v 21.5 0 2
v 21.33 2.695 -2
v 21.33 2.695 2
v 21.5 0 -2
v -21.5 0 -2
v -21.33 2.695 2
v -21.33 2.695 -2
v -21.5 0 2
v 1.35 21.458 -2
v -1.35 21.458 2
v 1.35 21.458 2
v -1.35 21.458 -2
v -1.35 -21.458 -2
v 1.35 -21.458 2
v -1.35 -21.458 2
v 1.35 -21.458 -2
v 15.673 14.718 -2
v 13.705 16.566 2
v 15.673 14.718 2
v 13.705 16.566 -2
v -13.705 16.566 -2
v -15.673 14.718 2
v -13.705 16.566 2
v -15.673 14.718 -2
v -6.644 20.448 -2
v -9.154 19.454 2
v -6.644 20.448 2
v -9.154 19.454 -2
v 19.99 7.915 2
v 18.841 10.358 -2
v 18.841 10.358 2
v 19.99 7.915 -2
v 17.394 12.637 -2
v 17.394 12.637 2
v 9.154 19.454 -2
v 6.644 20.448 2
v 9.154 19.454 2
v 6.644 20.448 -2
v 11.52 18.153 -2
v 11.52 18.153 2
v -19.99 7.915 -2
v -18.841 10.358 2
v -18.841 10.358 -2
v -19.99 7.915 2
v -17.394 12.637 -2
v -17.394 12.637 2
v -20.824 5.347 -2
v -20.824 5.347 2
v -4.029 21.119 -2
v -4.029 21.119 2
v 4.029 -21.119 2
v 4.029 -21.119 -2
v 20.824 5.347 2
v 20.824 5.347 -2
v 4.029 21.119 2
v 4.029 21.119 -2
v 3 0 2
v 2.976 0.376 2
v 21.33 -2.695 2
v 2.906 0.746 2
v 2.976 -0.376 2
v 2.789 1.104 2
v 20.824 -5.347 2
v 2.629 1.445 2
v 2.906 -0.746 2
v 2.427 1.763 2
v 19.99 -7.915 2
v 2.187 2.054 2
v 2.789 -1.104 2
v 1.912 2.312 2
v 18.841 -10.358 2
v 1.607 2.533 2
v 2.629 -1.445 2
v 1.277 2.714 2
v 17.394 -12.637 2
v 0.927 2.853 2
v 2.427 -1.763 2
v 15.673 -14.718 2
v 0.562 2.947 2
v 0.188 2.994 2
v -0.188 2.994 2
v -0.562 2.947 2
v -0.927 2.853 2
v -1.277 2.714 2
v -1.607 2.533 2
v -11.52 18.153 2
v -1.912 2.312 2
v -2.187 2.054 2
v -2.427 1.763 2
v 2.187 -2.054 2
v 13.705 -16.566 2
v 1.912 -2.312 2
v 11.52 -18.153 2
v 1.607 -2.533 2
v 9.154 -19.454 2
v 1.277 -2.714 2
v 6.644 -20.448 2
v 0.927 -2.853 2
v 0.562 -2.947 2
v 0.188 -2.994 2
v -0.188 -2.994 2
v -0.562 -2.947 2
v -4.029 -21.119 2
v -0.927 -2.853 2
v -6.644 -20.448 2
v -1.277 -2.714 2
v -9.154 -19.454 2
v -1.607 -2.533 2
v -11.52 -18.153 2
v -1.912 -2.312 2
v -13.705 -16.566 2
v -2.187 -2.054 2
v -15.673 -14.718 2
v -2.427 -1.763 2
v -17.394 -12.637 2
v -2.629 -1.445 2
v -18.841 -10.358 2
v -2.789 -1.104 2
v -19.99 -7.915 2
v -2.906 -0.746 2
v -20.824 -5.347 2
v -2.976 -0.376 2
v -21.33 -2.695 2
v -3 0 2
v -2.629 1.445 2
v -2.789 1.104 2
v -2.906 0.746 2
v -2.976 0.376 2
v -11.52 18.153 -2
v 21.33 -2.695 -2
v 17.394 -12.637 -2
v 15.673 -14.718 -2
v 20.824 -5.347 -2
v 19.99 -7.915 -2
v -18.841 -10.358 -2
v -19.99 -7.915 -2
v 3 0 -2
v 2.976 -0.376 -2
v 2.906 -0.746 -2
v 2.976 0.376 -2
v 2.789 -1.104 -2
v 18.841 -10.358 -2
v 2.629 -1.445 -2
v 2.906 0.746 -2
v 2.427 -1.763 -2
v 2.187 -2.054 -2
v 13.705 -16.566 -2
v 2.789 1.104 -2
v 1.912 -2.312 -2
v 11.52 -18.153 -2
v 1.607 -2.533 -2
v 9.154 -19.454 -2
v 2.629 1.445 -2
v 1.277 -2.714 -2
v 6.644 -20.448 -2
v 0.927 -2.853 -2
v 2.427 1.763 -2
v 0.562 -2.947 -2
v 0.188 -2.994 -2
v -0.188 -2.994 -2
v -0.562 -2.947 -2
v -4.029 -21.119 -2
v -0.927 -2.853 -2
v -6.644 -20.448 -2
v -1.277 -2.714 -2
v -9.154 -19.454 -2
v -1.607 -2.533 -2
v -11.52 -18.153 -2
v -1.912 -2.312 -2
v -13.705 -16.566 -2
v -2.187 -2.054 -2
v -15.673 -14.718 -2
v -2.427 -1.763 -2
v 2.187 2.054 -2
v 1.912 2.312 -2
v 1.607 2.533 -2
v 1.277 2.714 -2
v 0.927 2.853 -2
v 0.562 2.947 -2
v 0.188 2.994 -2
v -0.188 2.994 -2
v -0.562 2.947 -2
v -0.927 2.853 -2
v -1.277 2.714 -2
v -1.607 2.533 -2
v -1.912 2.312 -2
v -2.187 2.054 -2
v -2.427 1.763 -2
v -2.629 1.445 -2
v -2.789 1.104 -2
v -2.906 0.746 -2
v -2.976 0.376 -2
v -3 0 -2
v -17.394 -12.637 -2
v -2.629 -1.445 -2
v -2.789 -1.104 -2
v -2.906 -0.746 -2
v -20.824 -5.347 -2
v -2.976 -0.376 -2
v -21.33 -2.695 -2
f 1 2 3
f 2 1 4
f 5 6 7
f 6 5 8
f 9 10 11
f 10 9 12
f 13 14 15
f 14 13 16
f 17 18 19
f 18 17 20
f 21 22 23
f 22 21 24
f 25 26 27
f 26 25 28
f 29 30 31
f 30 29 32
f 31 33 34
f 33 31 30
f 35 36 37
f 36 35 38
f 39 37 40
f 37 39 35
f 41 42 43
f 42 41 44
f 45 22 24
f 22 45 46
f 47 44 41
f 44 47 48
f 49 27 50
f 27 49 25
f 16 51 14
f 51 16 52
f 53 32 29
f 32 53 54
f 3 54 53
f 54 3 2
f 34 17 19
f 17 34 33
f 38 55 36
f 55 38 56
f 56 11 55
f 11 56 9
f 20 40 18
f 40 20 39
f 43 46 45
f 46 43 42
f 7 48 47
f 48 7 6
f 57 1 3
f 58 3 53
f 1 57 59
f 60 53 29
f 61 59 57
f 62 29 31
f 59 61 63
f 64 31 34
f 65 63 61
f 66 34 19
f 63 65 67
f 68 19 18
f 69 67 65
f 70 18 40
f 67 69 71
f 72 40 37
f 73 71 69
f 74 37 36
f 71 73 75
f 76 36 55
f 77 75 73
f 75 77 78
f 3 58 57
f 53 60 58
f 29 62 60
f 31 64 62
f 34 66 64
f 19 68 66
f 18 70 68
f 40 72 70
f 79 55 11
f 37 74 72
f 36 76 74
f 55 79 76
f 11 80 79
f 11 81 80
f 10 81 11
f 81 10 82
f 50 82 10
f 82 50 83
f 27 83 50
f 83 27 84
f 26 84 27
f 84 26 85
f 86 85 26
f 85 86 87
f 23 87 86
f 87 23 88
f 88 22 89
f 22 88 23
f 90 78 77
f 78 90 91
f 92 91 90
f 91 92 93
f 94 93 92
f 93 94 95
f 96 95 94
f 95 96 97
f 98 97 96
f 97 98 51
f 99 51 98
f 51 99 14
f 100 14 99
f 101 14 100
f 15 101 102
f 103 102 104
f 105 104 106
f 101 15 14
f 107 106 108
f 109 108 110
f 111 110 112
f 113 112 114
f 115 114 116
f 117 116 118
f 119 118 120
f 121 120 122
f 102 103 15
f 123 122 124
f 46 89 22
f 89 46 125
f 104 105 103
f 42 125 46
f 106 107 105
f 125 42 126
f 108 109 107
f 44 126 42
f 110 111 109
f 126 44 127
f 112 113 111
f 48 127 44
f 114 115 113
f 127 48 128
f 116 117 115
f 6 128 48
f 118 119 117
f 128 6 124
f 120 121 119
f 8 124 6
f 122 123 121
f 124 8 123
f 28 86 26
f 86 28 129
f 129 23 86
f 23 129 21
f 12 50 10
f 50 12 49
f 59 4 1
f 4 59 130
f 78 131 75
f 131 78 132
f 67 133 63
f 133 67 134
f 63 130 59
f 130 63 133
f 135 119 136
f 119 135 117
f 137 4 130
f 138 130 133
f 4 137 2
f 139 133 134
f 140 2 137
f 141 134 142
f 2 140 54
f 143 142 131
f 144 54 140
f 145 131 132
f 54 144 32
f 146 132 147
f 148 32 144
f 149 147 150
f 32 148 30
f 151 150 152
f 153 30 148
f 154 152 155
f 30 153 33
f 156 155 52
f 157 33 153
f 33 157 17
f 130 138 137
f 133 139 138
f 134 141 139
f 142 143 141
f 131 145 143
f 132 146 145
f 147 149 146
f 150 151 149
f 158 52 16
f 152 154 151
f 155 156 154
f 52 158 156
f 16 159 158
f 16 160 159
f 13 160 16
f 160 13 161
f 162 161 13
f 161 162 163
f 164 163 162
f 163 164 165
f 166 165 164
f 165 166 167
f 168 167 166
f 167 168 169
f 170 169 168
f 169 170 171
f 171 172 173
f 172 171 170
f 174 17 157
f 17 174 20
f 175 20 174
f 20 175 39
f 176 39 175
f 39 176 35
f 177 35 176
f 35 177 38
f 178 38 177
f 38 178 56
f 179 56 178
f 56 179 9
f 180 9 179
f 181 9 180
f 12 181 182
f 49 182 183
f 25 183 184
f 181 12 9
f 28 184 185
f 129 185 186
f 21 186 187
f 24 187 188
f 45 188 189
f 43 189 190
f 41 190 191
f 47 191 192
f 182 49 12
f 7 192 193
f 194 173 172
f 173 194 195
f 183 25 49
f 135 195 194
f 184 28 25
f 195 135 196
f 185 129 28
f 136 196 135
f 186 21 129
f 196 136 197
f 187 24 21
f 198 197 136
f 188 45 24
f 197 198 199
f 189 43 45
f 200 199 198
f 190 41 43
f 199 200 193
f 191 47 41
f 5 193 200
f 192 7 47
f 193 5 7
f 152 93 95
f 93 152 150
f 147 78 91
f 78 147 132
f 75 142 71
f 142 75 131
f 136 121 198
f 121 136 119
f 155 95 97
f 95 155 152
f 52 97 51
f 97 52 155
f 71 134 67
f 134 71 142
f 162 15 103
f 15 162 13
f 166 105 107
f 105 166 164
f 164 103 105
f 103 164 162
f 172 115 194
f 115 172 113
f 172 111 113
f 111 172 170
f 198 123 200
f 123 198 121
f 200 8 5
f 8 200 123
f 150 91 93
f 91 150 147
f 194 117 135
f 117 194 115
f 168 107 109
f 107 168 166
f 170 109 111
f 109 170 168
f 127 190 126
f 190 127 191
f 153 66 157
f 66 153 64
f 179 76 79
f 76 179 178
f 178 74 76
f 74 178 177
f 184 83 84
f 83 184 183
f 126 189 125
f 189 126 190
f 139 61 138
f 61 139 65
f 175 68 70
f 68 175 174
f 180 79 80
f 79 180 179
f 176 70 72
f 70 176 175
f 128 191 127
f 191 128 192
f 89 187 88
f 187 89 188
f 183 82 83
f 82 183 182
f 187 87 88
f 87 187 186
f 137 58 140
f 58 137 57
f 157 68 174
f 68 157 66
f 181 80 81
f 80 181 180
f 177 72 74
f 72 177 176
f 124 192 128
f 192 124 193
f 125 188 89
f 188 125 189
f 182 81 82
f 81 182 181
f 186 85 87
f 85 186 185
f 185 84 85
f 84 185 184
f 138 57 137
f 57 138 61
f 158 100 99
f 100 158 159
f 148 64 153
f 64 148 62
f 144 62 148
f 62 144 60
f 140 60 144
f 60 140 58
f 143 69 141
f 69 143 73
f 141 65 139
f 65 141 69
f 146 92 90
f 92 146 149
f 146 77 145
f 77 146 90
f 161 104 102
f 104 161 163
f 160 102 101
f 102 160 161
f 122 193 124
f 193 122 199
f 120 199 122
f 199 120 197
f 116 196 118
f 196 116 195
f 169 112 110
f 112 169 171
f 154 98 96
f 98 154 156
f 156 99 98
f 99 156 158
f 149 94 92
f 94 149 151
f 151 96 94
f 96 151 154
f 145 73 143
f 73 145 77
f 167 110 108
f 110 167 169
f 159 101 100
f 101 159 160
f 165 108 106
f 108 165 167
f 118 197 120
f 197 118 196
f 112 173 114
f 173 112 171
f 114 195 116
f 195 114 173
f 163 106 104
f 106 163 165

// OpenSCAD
$fn = 50;


difference() {
	union() {
		translate(v = [0, 0, -2.0000000000]) {
			cylinder(h = 4, r = 21.5000000000);
		}
	}
	union() {
		translate(v = [0, 0, -100.0000000000]) {
			cylinder(h = 200, r = 3);
		}
	}
}
